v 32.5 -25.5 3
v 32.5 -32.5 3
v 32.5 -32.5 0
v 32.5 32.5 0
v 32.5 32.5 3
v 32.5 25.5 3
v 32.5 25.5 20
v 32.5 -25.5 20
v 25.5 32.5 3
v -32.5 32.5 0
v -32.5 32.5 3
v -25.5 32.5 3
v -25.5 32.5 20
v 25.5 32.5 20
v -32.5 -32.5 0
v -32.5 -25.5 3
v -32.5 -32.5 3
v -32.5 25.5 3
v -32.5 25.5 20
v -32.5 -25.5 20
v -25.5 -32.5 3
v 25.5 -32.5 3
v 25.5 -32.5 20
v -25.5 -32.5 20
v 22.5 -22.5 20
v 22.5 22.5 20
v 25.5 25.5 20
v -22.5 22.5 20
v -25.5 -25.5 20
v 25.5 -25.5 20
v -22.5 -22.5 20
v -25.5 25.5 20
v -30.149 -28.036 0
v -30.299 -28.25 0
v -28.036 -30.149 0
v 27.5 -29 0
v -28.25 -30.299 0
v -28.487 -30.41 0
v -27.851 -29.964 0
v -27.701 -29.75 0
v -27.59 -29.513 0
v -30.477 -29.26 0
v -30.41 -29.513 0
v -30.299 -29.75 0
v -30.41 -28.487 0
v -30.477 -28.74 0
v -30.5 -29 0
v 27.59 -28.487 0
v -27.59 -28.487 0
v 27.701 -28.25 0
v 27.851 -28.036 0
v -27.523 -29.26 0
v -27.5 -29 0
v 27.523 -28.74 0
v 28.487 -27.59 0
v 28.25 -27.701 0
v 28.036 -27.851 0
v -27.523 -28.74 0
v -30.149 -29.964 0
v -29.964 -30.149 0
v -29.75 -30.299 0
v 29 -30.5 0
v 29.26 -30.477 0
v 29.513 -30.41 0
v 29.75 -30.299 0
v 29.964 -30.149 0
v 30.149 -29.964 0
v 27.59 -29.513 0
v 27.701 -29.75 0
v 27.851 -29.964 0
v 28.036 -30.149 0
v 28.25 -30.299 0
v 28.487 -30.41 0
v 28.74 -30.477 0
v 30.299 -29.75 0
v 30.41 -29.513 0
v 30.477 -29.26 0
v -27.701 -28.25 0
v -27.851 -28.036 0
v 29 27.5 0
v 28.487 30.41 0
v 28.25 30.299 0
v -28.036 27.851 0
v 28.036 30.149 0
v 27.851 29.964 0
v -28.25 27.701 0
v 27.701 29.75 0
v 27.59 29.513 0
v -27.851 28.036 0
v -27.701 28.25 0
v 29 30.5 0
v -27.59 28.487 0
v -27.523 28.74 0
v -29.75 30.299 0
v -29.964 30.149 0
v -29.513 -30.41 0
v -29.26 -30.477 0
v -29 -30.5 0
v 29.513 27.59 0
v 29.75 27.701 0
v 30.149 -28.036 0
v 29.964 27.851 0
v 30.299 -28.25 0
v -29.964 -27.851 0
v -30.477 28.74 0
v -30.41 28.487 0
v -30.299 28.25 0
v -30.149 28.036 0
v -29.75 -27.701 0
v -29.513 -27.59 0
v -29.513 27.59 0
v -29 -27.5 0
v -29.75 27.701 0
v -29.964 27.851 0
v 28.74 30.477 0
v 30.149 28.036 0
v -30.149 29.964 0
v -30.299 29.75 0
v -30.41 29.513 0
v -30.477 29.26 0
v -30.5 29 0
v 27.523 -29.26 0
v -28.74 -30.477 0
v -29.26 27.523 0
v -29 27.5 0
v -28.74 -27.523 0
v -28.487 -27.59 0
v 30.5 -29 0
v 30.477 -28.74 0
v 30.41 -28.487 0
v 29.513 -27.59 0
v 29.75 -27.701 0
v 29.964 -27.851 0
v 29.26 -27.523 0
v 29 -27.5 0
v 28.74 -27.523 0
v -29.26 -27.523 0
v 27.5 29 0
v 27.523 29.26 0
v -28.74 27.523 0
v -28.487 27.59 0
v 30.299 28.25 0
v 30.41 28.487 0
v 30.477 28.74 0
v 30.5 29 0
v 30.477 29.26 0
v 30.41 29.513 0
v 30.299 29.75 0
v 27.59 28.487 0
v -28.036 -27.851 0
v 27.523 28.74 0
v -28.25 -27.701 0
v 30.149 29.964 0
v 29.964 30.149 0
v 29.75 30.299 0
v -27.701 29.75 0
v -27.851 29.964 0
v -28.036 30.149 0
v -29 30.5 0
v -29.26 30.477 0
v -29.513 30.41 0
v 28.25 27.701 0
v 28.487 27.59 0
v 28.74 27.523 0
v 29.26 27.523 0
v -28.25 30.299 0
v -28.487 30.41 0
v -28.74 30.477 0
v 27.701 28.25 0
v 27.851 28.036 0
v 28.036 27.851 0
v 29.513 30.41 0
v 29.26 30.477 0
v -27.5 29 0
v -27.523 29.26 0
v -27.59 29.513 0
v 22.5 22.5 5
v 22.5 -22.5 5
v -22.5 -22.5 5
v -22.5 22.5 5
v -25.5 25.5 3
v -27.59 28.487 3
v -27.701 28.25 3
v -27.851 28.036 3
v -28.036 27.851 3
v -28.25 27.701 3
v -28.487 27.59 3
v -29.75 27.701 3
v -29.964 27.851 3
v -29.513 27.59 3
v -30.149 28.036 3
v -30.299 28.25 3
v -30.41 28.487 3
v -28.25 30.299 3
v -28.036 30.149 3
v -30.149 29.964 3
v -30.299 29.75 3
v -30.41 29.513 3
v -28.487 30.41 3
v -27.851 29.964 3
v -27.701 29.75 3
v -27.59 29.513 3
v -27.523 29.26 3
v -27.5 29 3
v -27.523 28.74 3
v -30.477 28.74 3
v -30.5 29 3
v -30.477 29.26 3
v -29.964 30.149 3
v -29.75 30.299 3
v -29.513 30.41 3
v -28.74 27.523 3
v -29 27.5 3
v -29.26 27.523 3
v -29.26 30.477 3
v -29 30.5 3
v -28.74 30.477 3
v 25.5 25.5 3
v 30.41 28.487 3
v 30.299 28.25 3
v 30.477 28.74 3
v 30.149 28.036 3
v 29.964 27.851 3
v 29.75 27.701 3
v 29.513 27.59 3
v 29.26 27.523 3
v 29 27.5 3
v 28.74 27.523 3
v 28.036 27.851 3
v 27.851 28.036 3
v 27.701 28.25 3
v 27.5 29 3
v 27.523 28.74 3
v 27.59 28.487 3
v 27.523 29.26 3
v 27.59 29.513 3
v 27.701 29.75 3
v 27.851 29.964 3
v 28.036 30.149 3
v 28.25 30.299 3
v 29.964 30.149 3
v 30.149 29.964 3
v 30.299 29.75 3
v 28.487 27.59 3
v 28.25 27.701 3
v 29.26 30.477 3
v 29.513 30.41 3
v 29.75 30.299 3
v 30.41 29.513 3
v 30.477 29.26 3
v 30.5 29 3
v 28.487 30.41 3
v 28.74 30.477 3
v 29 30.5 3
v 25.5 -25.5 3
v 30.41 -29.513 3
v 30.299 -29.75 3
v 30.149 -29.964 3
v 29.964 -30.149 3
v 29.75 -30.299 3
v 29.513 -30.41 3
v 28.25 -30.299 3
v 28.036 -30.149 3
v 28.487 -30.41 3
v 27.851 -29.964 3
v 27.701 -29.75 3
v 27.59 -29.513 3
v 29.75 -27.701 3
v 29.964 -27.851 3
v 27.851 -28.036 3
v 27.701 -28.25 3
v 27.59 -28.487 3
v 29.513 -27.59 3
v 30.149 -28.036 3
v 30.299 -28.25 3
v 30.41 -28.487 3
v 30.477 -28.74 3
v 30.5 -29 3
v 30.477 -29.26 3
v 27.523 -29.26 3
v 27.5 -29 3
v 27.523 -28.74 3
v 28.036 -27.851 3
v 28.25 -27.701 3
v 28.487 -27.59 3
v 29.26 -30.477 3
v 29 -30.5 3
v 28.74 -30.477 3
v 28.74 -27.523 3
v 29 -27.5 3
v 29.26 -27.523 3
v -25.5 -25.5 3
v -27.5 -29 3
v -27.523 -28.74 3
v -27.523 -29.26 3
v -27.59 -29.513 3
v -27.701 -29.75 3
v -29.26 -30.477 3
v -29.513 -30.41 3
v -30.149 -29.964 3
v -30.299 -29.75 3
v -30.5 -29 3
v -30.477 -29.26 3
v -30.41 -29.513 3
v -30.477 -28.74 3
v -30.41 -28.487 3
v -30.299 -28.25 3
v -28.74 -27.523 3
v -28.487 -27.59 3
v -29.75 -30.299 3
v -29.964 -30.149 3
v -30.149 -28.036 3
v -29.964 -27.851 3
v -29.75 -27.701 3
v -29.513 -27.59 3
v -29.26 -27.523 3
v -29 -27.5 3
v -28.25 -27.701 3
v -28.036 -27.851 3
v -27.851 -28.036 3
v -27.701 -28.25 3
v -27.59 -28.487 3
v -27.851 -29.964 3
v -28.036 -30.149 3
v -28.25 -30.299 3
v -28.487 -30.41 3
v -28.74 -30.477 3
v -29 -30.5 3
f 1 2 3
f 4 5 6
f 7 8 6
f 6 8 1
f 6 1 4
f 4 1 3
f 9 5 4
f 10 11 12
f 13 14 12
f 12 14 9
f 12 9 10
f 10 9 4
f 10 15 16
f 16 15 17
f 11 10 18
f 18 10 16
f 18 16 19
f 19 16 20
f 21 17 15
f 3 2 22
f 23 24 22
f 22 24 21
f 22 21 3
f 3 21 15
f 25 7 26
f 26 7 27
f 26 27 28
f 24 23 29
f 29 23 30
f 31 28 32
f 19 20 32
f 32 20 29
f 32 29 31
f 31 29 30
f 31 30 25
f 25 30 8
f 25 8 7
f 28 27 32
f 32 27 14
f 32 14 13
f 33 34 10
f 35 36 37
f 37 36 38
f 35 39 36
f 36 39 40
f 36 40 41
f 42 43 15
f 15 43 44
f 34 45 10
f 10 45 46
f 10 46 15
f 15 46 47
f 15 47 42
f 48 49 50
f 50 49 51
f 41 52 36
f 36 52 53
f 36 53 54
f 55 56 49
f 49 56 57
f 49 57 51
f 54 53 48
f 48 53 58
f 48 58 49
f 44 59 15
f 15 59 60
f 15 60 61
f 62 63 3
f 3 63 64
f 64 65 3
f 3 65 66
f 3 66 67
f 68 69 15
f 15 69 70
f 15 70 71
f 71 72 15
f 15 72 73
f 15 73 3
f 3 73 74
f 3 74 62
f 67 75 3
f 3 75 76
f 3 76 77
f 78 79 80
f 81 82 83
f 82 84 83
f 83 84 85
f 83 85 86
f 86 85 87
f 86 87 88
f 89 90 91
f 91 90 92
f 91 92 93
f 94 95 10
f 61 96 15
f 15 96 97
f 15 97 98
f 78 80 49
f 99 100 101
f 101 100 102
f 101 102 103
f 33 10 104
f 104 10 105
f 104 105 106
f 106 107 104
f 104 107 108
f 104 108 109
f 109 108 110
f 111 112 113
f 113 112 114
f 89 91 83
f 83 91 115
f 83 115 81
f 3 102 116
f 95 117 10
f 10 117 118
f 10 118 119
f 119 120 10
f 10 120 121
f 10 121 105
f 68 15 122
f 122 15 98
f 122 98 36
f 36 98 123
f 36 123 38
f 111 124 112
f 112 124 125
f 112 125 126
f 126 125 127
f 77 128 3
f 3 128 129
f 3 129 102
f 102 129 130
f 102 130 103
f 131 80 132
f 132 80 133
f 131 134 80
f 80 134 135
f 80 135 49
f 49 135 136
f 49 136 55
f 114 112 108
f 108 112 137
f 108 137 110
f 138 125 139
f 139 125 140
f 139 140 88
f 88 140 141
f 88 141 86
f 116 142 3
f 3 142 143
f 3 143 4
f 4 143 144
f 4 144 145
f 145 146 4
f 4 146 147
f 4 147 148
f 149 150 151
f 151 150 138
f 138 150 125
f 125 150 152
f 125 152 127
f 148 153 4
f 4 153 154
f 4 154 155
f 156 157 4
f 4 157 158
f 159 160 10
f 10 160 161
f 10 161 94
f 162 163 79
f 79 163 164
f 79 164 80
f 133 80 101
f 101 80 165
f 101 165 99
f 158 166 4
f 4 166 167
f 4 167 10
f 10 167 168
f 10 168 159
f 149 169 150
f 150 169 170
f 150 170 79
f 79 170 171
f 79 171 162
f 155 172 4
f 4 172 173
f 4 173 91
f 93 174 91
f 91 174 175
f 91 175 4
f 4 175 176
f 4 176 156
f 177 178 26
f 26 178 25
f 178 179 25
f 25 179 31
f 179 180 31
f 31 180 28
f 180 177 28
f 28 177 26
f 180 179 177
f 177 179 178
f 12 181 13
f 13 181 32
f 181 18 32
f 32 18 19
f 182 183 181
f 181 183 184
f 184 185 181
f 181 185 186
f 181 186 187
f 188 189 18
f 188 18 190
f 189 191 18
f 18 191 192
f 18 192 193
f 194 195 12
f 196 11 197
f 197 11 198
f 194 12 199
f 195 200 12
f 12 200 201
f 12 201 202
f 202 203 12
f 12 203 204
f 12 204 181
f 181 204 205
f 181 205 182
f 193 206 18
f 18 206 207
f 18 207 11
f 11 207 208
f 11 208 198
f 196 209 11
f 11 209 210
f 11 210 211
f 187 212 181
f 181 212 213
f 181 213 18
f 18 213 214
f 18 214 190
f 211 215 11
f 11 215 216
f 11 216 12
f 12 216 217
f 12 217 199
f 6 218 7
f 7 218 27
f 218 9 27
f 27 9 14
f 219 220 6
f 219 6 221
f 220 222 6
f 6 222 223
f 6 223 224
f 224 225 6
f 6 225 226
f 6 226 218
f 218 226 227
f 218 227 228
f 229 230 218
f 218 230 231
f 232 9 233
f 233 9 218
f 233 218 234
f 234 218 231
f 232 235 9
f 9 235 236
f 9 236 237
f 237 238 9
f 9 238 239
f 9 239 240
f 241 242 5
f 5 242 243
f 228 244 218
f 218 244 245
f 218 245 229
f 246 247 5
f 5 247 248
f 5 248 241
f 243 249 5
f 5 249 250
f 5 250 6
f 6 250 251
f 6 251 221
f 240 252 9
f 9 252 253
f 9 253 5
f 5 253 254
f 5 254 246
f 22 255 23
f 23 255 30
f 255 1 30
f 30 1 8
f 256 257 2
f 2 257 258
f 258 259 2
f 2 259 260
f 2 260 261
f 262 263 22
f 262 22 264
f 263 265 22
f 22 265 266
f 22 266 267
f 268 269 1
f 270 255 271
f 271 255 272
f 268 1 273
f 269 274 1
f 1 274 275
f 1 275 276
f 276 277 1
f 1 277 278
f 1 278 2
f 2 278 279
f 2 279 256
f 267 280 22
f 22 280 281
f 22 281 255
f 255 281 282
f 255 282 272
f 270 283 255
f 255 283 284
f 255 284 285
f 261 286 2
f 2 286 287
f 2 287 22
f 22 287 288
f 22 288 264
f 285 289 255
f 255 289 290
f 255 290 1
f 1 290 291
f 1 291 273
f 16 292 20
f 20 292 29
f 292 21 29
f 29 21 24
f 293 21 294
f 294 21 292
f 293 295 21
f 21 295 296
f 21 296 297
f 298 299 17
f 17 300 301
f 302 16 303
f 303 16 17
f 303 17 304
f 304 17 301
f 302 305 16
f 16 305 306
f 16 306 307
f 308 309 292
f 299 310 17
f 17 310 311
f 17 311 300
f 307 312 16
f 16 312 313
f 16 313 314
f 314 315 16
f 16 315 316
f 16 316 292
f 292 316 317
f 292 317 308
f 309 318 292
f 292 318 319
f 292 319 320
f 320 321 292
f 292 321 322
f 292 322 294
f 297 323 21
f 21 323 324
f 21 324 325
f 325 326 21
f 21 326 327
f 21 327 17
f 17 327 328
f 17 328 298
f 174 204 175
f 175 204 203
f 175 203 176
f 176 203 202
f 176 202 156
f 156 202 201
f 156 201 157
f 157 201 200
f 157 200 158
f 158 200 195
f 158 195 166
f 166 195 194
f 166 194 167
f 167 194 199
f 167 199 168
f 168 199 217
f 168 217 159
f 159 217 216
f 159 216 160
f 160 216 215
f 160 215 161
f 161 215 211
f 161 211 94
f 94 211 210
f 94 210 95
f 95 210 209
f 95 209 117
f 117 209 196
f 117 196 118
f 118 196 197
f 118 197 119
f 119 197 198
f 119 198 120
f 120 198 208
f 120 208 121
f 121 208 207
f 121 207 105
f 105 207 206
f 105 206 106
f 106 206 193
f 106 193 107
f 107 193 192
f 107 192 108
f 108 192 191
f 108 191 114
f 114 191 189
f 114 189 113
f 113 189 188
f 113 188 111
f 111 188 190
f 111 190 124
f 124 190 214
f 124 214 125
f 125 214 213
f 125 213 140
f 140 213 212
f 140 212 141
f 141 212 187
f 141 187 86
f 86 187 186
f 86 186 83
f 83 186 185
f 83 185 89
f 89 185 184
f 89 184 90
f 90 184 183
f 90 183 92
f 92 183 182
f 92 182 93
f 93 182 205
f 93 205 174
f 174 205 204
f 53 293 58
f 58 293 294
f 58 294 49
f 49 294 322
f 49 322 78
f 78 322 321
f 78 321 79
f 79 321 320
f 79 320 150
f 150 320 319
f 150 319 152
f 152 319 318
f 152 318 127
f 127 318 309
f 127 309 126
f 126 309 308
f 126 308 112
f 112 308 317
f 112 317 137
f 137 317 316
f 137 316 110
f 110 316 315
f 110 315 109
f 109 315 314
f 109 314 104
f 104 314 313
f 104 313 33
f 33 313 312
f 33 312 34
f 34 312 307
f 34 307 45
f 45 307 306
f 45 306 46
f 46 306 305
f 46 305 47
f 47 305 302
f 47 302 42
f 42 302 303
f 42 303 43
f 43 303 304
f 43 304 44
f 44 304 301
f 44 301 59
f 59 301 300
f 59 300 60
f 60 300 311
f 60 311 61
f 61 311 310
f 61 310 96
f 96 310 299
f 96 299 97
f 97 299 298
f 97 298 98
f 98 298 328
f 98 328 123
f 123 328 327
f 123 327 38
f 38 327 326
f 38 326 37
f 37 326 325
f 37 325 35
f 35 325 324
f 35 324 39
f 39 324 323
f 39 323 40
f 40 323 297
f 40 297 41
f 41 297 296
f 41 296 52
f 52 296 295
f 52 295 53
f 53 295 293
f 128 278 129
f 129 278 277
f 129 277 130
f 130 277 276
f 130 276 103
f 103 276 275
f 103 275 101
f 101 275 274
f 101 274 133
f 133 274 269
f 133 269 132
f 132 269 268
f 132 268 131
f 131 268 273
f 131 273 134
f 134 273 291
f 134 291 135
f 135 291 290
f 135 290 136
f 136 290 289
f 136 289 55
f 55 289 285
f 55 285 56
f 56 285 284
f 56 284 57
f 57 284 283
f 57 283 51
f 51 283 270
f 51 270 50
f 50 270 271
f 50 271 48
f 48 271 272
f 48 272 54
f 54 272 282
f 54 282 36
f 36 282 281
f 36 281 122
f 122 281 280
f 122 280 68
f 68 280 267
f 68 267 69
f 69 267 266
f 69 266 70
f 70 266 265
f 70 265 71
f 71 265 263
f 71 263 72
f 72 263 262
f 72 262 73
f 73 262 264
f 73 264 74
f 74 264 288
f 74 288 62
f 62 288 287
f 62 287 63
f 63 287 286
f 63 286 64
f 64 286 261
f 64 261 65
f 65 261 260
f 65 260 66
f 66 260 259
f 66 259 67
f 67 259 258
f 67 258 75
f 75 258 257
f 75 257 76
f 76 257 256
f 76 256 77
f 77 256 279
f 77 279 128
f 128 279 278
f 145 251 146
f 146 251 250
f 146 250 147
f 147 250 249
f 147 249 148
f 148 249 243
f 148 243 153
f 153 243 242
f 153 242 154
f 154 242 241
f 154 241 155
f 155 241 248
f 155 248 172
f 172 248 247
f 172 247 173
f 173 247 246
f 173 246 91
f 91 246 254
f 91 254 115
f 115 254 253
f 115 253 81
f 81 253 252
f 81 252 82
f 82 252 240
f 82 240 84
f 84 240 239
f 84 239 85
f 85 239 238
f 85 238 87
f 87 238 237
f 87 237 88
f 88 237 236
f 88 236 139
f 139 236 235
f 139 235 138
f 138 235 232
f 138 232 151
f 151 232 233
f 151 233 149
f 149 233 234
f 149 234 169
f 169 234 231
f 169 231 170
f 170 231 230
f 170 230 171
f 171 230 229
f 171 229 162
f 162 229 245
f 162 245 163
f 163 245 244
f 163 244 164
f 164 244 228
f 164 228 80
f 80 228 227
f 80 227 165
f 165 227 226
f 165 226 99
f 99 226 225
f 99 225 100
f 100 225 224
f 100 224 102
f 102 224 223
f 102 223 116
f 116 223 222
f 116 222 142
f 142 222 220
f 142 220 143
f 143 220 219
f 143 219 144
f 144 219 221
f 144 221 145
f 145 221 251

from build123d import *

# Parameters (mm, degrees)
SKETCH_1_W               = 65
SKETCH_1_H               = 65
EXTRUDE_4_DEPTH          = 20
SKETCH_3_W               = 45
SKETCH_3_H               = 45
CUT_EXTRUDE_1_DEPTH      = 15
SKETCH_4_W               = 7
SKETCH_4_H               = 7
CUT_EXTRUDE_2_DEPTH      = 17
PATTERN_CIRCULAR_1_COUNT = 4
SKETCH_5_R               = 1.5
CUT_EXTRUDE_3_DEPTH      = 3
PATTERN_CIRCULAR_2_COUNT = 4


with BuildPart() as part:
    # Эскиз1 → Бобышка-Вытянуть4 (new body)
    with BuildSketch(Plane.XY):
        Rectangle(SKETCH_1_W, SKETCH_1_H)
    extrude(amount=EXTRUDE_4_DEPTH)

    # Эскиз3 → Вырез-Вытянуть1 (cut)
    with BuildSketch(Plane.XY.offset(20)):
        Rectangle(SKETCH_3_W, SKETCH_3_H)
    extrude(amount=-CUT_EXTRUDE_1_DEPTH, mode=Mode.SUBTRACT)

    # Эскиз4 → Вырез-Вытянуть2 (cut)
    with BuildSketch(Plane.XY.offset(20)):
        with Locations((-29, 29)):
            Rectangle(SKETCH_4_W, SKETCH_4_H)
    cut_extrude_2 = extrude(amount=-CUT_EXTRUDE_2_DEPTH, mode=Mode.SUBTRACT)

    # Круговой массив1: Вырез-Вытянуть2 ×4 about axis
    pattern_circular_1_axis = Axis((0, 0, 0), (0, 0, 1))
    for i in range(1, PATTERN_CIRCULAR_1_COUNT):
        add(cut_extrude_2.rotate(pattern_circular_1_axis, i * 360 / PATTERN_CIRCULAR_1_COUNT), mode=Mode.SUBTRACT)

    # Эскиз5 → Вырез-Вытянуть3 (cut)
    with BuildSketch(Plane.XY.offset(3)):
        with Locations((-29, 29)):
            Circle(SKETCH_5_R)
    cut_extrude_3 = extrude(amount=-CUT_EXTRUDE_3_DEPTH, mode=Mode.SUBTRACT)

    # Круговой массив2: Вырез-Вытянуть3 ×4 about axis
    pattern_circular_2_axis = Axis((0, 0, 0), (0, 0, 1))
    for i in range(1, PATTERN_CIRCULAR_2_COUNT):
        add(cut_extrude_3.rotate(pattern_circular_2_axis, i * 360 / PATTERN_CIRCULAR_2_COUNT), mode=Mode.SUBTRACT)


solid = part.part
